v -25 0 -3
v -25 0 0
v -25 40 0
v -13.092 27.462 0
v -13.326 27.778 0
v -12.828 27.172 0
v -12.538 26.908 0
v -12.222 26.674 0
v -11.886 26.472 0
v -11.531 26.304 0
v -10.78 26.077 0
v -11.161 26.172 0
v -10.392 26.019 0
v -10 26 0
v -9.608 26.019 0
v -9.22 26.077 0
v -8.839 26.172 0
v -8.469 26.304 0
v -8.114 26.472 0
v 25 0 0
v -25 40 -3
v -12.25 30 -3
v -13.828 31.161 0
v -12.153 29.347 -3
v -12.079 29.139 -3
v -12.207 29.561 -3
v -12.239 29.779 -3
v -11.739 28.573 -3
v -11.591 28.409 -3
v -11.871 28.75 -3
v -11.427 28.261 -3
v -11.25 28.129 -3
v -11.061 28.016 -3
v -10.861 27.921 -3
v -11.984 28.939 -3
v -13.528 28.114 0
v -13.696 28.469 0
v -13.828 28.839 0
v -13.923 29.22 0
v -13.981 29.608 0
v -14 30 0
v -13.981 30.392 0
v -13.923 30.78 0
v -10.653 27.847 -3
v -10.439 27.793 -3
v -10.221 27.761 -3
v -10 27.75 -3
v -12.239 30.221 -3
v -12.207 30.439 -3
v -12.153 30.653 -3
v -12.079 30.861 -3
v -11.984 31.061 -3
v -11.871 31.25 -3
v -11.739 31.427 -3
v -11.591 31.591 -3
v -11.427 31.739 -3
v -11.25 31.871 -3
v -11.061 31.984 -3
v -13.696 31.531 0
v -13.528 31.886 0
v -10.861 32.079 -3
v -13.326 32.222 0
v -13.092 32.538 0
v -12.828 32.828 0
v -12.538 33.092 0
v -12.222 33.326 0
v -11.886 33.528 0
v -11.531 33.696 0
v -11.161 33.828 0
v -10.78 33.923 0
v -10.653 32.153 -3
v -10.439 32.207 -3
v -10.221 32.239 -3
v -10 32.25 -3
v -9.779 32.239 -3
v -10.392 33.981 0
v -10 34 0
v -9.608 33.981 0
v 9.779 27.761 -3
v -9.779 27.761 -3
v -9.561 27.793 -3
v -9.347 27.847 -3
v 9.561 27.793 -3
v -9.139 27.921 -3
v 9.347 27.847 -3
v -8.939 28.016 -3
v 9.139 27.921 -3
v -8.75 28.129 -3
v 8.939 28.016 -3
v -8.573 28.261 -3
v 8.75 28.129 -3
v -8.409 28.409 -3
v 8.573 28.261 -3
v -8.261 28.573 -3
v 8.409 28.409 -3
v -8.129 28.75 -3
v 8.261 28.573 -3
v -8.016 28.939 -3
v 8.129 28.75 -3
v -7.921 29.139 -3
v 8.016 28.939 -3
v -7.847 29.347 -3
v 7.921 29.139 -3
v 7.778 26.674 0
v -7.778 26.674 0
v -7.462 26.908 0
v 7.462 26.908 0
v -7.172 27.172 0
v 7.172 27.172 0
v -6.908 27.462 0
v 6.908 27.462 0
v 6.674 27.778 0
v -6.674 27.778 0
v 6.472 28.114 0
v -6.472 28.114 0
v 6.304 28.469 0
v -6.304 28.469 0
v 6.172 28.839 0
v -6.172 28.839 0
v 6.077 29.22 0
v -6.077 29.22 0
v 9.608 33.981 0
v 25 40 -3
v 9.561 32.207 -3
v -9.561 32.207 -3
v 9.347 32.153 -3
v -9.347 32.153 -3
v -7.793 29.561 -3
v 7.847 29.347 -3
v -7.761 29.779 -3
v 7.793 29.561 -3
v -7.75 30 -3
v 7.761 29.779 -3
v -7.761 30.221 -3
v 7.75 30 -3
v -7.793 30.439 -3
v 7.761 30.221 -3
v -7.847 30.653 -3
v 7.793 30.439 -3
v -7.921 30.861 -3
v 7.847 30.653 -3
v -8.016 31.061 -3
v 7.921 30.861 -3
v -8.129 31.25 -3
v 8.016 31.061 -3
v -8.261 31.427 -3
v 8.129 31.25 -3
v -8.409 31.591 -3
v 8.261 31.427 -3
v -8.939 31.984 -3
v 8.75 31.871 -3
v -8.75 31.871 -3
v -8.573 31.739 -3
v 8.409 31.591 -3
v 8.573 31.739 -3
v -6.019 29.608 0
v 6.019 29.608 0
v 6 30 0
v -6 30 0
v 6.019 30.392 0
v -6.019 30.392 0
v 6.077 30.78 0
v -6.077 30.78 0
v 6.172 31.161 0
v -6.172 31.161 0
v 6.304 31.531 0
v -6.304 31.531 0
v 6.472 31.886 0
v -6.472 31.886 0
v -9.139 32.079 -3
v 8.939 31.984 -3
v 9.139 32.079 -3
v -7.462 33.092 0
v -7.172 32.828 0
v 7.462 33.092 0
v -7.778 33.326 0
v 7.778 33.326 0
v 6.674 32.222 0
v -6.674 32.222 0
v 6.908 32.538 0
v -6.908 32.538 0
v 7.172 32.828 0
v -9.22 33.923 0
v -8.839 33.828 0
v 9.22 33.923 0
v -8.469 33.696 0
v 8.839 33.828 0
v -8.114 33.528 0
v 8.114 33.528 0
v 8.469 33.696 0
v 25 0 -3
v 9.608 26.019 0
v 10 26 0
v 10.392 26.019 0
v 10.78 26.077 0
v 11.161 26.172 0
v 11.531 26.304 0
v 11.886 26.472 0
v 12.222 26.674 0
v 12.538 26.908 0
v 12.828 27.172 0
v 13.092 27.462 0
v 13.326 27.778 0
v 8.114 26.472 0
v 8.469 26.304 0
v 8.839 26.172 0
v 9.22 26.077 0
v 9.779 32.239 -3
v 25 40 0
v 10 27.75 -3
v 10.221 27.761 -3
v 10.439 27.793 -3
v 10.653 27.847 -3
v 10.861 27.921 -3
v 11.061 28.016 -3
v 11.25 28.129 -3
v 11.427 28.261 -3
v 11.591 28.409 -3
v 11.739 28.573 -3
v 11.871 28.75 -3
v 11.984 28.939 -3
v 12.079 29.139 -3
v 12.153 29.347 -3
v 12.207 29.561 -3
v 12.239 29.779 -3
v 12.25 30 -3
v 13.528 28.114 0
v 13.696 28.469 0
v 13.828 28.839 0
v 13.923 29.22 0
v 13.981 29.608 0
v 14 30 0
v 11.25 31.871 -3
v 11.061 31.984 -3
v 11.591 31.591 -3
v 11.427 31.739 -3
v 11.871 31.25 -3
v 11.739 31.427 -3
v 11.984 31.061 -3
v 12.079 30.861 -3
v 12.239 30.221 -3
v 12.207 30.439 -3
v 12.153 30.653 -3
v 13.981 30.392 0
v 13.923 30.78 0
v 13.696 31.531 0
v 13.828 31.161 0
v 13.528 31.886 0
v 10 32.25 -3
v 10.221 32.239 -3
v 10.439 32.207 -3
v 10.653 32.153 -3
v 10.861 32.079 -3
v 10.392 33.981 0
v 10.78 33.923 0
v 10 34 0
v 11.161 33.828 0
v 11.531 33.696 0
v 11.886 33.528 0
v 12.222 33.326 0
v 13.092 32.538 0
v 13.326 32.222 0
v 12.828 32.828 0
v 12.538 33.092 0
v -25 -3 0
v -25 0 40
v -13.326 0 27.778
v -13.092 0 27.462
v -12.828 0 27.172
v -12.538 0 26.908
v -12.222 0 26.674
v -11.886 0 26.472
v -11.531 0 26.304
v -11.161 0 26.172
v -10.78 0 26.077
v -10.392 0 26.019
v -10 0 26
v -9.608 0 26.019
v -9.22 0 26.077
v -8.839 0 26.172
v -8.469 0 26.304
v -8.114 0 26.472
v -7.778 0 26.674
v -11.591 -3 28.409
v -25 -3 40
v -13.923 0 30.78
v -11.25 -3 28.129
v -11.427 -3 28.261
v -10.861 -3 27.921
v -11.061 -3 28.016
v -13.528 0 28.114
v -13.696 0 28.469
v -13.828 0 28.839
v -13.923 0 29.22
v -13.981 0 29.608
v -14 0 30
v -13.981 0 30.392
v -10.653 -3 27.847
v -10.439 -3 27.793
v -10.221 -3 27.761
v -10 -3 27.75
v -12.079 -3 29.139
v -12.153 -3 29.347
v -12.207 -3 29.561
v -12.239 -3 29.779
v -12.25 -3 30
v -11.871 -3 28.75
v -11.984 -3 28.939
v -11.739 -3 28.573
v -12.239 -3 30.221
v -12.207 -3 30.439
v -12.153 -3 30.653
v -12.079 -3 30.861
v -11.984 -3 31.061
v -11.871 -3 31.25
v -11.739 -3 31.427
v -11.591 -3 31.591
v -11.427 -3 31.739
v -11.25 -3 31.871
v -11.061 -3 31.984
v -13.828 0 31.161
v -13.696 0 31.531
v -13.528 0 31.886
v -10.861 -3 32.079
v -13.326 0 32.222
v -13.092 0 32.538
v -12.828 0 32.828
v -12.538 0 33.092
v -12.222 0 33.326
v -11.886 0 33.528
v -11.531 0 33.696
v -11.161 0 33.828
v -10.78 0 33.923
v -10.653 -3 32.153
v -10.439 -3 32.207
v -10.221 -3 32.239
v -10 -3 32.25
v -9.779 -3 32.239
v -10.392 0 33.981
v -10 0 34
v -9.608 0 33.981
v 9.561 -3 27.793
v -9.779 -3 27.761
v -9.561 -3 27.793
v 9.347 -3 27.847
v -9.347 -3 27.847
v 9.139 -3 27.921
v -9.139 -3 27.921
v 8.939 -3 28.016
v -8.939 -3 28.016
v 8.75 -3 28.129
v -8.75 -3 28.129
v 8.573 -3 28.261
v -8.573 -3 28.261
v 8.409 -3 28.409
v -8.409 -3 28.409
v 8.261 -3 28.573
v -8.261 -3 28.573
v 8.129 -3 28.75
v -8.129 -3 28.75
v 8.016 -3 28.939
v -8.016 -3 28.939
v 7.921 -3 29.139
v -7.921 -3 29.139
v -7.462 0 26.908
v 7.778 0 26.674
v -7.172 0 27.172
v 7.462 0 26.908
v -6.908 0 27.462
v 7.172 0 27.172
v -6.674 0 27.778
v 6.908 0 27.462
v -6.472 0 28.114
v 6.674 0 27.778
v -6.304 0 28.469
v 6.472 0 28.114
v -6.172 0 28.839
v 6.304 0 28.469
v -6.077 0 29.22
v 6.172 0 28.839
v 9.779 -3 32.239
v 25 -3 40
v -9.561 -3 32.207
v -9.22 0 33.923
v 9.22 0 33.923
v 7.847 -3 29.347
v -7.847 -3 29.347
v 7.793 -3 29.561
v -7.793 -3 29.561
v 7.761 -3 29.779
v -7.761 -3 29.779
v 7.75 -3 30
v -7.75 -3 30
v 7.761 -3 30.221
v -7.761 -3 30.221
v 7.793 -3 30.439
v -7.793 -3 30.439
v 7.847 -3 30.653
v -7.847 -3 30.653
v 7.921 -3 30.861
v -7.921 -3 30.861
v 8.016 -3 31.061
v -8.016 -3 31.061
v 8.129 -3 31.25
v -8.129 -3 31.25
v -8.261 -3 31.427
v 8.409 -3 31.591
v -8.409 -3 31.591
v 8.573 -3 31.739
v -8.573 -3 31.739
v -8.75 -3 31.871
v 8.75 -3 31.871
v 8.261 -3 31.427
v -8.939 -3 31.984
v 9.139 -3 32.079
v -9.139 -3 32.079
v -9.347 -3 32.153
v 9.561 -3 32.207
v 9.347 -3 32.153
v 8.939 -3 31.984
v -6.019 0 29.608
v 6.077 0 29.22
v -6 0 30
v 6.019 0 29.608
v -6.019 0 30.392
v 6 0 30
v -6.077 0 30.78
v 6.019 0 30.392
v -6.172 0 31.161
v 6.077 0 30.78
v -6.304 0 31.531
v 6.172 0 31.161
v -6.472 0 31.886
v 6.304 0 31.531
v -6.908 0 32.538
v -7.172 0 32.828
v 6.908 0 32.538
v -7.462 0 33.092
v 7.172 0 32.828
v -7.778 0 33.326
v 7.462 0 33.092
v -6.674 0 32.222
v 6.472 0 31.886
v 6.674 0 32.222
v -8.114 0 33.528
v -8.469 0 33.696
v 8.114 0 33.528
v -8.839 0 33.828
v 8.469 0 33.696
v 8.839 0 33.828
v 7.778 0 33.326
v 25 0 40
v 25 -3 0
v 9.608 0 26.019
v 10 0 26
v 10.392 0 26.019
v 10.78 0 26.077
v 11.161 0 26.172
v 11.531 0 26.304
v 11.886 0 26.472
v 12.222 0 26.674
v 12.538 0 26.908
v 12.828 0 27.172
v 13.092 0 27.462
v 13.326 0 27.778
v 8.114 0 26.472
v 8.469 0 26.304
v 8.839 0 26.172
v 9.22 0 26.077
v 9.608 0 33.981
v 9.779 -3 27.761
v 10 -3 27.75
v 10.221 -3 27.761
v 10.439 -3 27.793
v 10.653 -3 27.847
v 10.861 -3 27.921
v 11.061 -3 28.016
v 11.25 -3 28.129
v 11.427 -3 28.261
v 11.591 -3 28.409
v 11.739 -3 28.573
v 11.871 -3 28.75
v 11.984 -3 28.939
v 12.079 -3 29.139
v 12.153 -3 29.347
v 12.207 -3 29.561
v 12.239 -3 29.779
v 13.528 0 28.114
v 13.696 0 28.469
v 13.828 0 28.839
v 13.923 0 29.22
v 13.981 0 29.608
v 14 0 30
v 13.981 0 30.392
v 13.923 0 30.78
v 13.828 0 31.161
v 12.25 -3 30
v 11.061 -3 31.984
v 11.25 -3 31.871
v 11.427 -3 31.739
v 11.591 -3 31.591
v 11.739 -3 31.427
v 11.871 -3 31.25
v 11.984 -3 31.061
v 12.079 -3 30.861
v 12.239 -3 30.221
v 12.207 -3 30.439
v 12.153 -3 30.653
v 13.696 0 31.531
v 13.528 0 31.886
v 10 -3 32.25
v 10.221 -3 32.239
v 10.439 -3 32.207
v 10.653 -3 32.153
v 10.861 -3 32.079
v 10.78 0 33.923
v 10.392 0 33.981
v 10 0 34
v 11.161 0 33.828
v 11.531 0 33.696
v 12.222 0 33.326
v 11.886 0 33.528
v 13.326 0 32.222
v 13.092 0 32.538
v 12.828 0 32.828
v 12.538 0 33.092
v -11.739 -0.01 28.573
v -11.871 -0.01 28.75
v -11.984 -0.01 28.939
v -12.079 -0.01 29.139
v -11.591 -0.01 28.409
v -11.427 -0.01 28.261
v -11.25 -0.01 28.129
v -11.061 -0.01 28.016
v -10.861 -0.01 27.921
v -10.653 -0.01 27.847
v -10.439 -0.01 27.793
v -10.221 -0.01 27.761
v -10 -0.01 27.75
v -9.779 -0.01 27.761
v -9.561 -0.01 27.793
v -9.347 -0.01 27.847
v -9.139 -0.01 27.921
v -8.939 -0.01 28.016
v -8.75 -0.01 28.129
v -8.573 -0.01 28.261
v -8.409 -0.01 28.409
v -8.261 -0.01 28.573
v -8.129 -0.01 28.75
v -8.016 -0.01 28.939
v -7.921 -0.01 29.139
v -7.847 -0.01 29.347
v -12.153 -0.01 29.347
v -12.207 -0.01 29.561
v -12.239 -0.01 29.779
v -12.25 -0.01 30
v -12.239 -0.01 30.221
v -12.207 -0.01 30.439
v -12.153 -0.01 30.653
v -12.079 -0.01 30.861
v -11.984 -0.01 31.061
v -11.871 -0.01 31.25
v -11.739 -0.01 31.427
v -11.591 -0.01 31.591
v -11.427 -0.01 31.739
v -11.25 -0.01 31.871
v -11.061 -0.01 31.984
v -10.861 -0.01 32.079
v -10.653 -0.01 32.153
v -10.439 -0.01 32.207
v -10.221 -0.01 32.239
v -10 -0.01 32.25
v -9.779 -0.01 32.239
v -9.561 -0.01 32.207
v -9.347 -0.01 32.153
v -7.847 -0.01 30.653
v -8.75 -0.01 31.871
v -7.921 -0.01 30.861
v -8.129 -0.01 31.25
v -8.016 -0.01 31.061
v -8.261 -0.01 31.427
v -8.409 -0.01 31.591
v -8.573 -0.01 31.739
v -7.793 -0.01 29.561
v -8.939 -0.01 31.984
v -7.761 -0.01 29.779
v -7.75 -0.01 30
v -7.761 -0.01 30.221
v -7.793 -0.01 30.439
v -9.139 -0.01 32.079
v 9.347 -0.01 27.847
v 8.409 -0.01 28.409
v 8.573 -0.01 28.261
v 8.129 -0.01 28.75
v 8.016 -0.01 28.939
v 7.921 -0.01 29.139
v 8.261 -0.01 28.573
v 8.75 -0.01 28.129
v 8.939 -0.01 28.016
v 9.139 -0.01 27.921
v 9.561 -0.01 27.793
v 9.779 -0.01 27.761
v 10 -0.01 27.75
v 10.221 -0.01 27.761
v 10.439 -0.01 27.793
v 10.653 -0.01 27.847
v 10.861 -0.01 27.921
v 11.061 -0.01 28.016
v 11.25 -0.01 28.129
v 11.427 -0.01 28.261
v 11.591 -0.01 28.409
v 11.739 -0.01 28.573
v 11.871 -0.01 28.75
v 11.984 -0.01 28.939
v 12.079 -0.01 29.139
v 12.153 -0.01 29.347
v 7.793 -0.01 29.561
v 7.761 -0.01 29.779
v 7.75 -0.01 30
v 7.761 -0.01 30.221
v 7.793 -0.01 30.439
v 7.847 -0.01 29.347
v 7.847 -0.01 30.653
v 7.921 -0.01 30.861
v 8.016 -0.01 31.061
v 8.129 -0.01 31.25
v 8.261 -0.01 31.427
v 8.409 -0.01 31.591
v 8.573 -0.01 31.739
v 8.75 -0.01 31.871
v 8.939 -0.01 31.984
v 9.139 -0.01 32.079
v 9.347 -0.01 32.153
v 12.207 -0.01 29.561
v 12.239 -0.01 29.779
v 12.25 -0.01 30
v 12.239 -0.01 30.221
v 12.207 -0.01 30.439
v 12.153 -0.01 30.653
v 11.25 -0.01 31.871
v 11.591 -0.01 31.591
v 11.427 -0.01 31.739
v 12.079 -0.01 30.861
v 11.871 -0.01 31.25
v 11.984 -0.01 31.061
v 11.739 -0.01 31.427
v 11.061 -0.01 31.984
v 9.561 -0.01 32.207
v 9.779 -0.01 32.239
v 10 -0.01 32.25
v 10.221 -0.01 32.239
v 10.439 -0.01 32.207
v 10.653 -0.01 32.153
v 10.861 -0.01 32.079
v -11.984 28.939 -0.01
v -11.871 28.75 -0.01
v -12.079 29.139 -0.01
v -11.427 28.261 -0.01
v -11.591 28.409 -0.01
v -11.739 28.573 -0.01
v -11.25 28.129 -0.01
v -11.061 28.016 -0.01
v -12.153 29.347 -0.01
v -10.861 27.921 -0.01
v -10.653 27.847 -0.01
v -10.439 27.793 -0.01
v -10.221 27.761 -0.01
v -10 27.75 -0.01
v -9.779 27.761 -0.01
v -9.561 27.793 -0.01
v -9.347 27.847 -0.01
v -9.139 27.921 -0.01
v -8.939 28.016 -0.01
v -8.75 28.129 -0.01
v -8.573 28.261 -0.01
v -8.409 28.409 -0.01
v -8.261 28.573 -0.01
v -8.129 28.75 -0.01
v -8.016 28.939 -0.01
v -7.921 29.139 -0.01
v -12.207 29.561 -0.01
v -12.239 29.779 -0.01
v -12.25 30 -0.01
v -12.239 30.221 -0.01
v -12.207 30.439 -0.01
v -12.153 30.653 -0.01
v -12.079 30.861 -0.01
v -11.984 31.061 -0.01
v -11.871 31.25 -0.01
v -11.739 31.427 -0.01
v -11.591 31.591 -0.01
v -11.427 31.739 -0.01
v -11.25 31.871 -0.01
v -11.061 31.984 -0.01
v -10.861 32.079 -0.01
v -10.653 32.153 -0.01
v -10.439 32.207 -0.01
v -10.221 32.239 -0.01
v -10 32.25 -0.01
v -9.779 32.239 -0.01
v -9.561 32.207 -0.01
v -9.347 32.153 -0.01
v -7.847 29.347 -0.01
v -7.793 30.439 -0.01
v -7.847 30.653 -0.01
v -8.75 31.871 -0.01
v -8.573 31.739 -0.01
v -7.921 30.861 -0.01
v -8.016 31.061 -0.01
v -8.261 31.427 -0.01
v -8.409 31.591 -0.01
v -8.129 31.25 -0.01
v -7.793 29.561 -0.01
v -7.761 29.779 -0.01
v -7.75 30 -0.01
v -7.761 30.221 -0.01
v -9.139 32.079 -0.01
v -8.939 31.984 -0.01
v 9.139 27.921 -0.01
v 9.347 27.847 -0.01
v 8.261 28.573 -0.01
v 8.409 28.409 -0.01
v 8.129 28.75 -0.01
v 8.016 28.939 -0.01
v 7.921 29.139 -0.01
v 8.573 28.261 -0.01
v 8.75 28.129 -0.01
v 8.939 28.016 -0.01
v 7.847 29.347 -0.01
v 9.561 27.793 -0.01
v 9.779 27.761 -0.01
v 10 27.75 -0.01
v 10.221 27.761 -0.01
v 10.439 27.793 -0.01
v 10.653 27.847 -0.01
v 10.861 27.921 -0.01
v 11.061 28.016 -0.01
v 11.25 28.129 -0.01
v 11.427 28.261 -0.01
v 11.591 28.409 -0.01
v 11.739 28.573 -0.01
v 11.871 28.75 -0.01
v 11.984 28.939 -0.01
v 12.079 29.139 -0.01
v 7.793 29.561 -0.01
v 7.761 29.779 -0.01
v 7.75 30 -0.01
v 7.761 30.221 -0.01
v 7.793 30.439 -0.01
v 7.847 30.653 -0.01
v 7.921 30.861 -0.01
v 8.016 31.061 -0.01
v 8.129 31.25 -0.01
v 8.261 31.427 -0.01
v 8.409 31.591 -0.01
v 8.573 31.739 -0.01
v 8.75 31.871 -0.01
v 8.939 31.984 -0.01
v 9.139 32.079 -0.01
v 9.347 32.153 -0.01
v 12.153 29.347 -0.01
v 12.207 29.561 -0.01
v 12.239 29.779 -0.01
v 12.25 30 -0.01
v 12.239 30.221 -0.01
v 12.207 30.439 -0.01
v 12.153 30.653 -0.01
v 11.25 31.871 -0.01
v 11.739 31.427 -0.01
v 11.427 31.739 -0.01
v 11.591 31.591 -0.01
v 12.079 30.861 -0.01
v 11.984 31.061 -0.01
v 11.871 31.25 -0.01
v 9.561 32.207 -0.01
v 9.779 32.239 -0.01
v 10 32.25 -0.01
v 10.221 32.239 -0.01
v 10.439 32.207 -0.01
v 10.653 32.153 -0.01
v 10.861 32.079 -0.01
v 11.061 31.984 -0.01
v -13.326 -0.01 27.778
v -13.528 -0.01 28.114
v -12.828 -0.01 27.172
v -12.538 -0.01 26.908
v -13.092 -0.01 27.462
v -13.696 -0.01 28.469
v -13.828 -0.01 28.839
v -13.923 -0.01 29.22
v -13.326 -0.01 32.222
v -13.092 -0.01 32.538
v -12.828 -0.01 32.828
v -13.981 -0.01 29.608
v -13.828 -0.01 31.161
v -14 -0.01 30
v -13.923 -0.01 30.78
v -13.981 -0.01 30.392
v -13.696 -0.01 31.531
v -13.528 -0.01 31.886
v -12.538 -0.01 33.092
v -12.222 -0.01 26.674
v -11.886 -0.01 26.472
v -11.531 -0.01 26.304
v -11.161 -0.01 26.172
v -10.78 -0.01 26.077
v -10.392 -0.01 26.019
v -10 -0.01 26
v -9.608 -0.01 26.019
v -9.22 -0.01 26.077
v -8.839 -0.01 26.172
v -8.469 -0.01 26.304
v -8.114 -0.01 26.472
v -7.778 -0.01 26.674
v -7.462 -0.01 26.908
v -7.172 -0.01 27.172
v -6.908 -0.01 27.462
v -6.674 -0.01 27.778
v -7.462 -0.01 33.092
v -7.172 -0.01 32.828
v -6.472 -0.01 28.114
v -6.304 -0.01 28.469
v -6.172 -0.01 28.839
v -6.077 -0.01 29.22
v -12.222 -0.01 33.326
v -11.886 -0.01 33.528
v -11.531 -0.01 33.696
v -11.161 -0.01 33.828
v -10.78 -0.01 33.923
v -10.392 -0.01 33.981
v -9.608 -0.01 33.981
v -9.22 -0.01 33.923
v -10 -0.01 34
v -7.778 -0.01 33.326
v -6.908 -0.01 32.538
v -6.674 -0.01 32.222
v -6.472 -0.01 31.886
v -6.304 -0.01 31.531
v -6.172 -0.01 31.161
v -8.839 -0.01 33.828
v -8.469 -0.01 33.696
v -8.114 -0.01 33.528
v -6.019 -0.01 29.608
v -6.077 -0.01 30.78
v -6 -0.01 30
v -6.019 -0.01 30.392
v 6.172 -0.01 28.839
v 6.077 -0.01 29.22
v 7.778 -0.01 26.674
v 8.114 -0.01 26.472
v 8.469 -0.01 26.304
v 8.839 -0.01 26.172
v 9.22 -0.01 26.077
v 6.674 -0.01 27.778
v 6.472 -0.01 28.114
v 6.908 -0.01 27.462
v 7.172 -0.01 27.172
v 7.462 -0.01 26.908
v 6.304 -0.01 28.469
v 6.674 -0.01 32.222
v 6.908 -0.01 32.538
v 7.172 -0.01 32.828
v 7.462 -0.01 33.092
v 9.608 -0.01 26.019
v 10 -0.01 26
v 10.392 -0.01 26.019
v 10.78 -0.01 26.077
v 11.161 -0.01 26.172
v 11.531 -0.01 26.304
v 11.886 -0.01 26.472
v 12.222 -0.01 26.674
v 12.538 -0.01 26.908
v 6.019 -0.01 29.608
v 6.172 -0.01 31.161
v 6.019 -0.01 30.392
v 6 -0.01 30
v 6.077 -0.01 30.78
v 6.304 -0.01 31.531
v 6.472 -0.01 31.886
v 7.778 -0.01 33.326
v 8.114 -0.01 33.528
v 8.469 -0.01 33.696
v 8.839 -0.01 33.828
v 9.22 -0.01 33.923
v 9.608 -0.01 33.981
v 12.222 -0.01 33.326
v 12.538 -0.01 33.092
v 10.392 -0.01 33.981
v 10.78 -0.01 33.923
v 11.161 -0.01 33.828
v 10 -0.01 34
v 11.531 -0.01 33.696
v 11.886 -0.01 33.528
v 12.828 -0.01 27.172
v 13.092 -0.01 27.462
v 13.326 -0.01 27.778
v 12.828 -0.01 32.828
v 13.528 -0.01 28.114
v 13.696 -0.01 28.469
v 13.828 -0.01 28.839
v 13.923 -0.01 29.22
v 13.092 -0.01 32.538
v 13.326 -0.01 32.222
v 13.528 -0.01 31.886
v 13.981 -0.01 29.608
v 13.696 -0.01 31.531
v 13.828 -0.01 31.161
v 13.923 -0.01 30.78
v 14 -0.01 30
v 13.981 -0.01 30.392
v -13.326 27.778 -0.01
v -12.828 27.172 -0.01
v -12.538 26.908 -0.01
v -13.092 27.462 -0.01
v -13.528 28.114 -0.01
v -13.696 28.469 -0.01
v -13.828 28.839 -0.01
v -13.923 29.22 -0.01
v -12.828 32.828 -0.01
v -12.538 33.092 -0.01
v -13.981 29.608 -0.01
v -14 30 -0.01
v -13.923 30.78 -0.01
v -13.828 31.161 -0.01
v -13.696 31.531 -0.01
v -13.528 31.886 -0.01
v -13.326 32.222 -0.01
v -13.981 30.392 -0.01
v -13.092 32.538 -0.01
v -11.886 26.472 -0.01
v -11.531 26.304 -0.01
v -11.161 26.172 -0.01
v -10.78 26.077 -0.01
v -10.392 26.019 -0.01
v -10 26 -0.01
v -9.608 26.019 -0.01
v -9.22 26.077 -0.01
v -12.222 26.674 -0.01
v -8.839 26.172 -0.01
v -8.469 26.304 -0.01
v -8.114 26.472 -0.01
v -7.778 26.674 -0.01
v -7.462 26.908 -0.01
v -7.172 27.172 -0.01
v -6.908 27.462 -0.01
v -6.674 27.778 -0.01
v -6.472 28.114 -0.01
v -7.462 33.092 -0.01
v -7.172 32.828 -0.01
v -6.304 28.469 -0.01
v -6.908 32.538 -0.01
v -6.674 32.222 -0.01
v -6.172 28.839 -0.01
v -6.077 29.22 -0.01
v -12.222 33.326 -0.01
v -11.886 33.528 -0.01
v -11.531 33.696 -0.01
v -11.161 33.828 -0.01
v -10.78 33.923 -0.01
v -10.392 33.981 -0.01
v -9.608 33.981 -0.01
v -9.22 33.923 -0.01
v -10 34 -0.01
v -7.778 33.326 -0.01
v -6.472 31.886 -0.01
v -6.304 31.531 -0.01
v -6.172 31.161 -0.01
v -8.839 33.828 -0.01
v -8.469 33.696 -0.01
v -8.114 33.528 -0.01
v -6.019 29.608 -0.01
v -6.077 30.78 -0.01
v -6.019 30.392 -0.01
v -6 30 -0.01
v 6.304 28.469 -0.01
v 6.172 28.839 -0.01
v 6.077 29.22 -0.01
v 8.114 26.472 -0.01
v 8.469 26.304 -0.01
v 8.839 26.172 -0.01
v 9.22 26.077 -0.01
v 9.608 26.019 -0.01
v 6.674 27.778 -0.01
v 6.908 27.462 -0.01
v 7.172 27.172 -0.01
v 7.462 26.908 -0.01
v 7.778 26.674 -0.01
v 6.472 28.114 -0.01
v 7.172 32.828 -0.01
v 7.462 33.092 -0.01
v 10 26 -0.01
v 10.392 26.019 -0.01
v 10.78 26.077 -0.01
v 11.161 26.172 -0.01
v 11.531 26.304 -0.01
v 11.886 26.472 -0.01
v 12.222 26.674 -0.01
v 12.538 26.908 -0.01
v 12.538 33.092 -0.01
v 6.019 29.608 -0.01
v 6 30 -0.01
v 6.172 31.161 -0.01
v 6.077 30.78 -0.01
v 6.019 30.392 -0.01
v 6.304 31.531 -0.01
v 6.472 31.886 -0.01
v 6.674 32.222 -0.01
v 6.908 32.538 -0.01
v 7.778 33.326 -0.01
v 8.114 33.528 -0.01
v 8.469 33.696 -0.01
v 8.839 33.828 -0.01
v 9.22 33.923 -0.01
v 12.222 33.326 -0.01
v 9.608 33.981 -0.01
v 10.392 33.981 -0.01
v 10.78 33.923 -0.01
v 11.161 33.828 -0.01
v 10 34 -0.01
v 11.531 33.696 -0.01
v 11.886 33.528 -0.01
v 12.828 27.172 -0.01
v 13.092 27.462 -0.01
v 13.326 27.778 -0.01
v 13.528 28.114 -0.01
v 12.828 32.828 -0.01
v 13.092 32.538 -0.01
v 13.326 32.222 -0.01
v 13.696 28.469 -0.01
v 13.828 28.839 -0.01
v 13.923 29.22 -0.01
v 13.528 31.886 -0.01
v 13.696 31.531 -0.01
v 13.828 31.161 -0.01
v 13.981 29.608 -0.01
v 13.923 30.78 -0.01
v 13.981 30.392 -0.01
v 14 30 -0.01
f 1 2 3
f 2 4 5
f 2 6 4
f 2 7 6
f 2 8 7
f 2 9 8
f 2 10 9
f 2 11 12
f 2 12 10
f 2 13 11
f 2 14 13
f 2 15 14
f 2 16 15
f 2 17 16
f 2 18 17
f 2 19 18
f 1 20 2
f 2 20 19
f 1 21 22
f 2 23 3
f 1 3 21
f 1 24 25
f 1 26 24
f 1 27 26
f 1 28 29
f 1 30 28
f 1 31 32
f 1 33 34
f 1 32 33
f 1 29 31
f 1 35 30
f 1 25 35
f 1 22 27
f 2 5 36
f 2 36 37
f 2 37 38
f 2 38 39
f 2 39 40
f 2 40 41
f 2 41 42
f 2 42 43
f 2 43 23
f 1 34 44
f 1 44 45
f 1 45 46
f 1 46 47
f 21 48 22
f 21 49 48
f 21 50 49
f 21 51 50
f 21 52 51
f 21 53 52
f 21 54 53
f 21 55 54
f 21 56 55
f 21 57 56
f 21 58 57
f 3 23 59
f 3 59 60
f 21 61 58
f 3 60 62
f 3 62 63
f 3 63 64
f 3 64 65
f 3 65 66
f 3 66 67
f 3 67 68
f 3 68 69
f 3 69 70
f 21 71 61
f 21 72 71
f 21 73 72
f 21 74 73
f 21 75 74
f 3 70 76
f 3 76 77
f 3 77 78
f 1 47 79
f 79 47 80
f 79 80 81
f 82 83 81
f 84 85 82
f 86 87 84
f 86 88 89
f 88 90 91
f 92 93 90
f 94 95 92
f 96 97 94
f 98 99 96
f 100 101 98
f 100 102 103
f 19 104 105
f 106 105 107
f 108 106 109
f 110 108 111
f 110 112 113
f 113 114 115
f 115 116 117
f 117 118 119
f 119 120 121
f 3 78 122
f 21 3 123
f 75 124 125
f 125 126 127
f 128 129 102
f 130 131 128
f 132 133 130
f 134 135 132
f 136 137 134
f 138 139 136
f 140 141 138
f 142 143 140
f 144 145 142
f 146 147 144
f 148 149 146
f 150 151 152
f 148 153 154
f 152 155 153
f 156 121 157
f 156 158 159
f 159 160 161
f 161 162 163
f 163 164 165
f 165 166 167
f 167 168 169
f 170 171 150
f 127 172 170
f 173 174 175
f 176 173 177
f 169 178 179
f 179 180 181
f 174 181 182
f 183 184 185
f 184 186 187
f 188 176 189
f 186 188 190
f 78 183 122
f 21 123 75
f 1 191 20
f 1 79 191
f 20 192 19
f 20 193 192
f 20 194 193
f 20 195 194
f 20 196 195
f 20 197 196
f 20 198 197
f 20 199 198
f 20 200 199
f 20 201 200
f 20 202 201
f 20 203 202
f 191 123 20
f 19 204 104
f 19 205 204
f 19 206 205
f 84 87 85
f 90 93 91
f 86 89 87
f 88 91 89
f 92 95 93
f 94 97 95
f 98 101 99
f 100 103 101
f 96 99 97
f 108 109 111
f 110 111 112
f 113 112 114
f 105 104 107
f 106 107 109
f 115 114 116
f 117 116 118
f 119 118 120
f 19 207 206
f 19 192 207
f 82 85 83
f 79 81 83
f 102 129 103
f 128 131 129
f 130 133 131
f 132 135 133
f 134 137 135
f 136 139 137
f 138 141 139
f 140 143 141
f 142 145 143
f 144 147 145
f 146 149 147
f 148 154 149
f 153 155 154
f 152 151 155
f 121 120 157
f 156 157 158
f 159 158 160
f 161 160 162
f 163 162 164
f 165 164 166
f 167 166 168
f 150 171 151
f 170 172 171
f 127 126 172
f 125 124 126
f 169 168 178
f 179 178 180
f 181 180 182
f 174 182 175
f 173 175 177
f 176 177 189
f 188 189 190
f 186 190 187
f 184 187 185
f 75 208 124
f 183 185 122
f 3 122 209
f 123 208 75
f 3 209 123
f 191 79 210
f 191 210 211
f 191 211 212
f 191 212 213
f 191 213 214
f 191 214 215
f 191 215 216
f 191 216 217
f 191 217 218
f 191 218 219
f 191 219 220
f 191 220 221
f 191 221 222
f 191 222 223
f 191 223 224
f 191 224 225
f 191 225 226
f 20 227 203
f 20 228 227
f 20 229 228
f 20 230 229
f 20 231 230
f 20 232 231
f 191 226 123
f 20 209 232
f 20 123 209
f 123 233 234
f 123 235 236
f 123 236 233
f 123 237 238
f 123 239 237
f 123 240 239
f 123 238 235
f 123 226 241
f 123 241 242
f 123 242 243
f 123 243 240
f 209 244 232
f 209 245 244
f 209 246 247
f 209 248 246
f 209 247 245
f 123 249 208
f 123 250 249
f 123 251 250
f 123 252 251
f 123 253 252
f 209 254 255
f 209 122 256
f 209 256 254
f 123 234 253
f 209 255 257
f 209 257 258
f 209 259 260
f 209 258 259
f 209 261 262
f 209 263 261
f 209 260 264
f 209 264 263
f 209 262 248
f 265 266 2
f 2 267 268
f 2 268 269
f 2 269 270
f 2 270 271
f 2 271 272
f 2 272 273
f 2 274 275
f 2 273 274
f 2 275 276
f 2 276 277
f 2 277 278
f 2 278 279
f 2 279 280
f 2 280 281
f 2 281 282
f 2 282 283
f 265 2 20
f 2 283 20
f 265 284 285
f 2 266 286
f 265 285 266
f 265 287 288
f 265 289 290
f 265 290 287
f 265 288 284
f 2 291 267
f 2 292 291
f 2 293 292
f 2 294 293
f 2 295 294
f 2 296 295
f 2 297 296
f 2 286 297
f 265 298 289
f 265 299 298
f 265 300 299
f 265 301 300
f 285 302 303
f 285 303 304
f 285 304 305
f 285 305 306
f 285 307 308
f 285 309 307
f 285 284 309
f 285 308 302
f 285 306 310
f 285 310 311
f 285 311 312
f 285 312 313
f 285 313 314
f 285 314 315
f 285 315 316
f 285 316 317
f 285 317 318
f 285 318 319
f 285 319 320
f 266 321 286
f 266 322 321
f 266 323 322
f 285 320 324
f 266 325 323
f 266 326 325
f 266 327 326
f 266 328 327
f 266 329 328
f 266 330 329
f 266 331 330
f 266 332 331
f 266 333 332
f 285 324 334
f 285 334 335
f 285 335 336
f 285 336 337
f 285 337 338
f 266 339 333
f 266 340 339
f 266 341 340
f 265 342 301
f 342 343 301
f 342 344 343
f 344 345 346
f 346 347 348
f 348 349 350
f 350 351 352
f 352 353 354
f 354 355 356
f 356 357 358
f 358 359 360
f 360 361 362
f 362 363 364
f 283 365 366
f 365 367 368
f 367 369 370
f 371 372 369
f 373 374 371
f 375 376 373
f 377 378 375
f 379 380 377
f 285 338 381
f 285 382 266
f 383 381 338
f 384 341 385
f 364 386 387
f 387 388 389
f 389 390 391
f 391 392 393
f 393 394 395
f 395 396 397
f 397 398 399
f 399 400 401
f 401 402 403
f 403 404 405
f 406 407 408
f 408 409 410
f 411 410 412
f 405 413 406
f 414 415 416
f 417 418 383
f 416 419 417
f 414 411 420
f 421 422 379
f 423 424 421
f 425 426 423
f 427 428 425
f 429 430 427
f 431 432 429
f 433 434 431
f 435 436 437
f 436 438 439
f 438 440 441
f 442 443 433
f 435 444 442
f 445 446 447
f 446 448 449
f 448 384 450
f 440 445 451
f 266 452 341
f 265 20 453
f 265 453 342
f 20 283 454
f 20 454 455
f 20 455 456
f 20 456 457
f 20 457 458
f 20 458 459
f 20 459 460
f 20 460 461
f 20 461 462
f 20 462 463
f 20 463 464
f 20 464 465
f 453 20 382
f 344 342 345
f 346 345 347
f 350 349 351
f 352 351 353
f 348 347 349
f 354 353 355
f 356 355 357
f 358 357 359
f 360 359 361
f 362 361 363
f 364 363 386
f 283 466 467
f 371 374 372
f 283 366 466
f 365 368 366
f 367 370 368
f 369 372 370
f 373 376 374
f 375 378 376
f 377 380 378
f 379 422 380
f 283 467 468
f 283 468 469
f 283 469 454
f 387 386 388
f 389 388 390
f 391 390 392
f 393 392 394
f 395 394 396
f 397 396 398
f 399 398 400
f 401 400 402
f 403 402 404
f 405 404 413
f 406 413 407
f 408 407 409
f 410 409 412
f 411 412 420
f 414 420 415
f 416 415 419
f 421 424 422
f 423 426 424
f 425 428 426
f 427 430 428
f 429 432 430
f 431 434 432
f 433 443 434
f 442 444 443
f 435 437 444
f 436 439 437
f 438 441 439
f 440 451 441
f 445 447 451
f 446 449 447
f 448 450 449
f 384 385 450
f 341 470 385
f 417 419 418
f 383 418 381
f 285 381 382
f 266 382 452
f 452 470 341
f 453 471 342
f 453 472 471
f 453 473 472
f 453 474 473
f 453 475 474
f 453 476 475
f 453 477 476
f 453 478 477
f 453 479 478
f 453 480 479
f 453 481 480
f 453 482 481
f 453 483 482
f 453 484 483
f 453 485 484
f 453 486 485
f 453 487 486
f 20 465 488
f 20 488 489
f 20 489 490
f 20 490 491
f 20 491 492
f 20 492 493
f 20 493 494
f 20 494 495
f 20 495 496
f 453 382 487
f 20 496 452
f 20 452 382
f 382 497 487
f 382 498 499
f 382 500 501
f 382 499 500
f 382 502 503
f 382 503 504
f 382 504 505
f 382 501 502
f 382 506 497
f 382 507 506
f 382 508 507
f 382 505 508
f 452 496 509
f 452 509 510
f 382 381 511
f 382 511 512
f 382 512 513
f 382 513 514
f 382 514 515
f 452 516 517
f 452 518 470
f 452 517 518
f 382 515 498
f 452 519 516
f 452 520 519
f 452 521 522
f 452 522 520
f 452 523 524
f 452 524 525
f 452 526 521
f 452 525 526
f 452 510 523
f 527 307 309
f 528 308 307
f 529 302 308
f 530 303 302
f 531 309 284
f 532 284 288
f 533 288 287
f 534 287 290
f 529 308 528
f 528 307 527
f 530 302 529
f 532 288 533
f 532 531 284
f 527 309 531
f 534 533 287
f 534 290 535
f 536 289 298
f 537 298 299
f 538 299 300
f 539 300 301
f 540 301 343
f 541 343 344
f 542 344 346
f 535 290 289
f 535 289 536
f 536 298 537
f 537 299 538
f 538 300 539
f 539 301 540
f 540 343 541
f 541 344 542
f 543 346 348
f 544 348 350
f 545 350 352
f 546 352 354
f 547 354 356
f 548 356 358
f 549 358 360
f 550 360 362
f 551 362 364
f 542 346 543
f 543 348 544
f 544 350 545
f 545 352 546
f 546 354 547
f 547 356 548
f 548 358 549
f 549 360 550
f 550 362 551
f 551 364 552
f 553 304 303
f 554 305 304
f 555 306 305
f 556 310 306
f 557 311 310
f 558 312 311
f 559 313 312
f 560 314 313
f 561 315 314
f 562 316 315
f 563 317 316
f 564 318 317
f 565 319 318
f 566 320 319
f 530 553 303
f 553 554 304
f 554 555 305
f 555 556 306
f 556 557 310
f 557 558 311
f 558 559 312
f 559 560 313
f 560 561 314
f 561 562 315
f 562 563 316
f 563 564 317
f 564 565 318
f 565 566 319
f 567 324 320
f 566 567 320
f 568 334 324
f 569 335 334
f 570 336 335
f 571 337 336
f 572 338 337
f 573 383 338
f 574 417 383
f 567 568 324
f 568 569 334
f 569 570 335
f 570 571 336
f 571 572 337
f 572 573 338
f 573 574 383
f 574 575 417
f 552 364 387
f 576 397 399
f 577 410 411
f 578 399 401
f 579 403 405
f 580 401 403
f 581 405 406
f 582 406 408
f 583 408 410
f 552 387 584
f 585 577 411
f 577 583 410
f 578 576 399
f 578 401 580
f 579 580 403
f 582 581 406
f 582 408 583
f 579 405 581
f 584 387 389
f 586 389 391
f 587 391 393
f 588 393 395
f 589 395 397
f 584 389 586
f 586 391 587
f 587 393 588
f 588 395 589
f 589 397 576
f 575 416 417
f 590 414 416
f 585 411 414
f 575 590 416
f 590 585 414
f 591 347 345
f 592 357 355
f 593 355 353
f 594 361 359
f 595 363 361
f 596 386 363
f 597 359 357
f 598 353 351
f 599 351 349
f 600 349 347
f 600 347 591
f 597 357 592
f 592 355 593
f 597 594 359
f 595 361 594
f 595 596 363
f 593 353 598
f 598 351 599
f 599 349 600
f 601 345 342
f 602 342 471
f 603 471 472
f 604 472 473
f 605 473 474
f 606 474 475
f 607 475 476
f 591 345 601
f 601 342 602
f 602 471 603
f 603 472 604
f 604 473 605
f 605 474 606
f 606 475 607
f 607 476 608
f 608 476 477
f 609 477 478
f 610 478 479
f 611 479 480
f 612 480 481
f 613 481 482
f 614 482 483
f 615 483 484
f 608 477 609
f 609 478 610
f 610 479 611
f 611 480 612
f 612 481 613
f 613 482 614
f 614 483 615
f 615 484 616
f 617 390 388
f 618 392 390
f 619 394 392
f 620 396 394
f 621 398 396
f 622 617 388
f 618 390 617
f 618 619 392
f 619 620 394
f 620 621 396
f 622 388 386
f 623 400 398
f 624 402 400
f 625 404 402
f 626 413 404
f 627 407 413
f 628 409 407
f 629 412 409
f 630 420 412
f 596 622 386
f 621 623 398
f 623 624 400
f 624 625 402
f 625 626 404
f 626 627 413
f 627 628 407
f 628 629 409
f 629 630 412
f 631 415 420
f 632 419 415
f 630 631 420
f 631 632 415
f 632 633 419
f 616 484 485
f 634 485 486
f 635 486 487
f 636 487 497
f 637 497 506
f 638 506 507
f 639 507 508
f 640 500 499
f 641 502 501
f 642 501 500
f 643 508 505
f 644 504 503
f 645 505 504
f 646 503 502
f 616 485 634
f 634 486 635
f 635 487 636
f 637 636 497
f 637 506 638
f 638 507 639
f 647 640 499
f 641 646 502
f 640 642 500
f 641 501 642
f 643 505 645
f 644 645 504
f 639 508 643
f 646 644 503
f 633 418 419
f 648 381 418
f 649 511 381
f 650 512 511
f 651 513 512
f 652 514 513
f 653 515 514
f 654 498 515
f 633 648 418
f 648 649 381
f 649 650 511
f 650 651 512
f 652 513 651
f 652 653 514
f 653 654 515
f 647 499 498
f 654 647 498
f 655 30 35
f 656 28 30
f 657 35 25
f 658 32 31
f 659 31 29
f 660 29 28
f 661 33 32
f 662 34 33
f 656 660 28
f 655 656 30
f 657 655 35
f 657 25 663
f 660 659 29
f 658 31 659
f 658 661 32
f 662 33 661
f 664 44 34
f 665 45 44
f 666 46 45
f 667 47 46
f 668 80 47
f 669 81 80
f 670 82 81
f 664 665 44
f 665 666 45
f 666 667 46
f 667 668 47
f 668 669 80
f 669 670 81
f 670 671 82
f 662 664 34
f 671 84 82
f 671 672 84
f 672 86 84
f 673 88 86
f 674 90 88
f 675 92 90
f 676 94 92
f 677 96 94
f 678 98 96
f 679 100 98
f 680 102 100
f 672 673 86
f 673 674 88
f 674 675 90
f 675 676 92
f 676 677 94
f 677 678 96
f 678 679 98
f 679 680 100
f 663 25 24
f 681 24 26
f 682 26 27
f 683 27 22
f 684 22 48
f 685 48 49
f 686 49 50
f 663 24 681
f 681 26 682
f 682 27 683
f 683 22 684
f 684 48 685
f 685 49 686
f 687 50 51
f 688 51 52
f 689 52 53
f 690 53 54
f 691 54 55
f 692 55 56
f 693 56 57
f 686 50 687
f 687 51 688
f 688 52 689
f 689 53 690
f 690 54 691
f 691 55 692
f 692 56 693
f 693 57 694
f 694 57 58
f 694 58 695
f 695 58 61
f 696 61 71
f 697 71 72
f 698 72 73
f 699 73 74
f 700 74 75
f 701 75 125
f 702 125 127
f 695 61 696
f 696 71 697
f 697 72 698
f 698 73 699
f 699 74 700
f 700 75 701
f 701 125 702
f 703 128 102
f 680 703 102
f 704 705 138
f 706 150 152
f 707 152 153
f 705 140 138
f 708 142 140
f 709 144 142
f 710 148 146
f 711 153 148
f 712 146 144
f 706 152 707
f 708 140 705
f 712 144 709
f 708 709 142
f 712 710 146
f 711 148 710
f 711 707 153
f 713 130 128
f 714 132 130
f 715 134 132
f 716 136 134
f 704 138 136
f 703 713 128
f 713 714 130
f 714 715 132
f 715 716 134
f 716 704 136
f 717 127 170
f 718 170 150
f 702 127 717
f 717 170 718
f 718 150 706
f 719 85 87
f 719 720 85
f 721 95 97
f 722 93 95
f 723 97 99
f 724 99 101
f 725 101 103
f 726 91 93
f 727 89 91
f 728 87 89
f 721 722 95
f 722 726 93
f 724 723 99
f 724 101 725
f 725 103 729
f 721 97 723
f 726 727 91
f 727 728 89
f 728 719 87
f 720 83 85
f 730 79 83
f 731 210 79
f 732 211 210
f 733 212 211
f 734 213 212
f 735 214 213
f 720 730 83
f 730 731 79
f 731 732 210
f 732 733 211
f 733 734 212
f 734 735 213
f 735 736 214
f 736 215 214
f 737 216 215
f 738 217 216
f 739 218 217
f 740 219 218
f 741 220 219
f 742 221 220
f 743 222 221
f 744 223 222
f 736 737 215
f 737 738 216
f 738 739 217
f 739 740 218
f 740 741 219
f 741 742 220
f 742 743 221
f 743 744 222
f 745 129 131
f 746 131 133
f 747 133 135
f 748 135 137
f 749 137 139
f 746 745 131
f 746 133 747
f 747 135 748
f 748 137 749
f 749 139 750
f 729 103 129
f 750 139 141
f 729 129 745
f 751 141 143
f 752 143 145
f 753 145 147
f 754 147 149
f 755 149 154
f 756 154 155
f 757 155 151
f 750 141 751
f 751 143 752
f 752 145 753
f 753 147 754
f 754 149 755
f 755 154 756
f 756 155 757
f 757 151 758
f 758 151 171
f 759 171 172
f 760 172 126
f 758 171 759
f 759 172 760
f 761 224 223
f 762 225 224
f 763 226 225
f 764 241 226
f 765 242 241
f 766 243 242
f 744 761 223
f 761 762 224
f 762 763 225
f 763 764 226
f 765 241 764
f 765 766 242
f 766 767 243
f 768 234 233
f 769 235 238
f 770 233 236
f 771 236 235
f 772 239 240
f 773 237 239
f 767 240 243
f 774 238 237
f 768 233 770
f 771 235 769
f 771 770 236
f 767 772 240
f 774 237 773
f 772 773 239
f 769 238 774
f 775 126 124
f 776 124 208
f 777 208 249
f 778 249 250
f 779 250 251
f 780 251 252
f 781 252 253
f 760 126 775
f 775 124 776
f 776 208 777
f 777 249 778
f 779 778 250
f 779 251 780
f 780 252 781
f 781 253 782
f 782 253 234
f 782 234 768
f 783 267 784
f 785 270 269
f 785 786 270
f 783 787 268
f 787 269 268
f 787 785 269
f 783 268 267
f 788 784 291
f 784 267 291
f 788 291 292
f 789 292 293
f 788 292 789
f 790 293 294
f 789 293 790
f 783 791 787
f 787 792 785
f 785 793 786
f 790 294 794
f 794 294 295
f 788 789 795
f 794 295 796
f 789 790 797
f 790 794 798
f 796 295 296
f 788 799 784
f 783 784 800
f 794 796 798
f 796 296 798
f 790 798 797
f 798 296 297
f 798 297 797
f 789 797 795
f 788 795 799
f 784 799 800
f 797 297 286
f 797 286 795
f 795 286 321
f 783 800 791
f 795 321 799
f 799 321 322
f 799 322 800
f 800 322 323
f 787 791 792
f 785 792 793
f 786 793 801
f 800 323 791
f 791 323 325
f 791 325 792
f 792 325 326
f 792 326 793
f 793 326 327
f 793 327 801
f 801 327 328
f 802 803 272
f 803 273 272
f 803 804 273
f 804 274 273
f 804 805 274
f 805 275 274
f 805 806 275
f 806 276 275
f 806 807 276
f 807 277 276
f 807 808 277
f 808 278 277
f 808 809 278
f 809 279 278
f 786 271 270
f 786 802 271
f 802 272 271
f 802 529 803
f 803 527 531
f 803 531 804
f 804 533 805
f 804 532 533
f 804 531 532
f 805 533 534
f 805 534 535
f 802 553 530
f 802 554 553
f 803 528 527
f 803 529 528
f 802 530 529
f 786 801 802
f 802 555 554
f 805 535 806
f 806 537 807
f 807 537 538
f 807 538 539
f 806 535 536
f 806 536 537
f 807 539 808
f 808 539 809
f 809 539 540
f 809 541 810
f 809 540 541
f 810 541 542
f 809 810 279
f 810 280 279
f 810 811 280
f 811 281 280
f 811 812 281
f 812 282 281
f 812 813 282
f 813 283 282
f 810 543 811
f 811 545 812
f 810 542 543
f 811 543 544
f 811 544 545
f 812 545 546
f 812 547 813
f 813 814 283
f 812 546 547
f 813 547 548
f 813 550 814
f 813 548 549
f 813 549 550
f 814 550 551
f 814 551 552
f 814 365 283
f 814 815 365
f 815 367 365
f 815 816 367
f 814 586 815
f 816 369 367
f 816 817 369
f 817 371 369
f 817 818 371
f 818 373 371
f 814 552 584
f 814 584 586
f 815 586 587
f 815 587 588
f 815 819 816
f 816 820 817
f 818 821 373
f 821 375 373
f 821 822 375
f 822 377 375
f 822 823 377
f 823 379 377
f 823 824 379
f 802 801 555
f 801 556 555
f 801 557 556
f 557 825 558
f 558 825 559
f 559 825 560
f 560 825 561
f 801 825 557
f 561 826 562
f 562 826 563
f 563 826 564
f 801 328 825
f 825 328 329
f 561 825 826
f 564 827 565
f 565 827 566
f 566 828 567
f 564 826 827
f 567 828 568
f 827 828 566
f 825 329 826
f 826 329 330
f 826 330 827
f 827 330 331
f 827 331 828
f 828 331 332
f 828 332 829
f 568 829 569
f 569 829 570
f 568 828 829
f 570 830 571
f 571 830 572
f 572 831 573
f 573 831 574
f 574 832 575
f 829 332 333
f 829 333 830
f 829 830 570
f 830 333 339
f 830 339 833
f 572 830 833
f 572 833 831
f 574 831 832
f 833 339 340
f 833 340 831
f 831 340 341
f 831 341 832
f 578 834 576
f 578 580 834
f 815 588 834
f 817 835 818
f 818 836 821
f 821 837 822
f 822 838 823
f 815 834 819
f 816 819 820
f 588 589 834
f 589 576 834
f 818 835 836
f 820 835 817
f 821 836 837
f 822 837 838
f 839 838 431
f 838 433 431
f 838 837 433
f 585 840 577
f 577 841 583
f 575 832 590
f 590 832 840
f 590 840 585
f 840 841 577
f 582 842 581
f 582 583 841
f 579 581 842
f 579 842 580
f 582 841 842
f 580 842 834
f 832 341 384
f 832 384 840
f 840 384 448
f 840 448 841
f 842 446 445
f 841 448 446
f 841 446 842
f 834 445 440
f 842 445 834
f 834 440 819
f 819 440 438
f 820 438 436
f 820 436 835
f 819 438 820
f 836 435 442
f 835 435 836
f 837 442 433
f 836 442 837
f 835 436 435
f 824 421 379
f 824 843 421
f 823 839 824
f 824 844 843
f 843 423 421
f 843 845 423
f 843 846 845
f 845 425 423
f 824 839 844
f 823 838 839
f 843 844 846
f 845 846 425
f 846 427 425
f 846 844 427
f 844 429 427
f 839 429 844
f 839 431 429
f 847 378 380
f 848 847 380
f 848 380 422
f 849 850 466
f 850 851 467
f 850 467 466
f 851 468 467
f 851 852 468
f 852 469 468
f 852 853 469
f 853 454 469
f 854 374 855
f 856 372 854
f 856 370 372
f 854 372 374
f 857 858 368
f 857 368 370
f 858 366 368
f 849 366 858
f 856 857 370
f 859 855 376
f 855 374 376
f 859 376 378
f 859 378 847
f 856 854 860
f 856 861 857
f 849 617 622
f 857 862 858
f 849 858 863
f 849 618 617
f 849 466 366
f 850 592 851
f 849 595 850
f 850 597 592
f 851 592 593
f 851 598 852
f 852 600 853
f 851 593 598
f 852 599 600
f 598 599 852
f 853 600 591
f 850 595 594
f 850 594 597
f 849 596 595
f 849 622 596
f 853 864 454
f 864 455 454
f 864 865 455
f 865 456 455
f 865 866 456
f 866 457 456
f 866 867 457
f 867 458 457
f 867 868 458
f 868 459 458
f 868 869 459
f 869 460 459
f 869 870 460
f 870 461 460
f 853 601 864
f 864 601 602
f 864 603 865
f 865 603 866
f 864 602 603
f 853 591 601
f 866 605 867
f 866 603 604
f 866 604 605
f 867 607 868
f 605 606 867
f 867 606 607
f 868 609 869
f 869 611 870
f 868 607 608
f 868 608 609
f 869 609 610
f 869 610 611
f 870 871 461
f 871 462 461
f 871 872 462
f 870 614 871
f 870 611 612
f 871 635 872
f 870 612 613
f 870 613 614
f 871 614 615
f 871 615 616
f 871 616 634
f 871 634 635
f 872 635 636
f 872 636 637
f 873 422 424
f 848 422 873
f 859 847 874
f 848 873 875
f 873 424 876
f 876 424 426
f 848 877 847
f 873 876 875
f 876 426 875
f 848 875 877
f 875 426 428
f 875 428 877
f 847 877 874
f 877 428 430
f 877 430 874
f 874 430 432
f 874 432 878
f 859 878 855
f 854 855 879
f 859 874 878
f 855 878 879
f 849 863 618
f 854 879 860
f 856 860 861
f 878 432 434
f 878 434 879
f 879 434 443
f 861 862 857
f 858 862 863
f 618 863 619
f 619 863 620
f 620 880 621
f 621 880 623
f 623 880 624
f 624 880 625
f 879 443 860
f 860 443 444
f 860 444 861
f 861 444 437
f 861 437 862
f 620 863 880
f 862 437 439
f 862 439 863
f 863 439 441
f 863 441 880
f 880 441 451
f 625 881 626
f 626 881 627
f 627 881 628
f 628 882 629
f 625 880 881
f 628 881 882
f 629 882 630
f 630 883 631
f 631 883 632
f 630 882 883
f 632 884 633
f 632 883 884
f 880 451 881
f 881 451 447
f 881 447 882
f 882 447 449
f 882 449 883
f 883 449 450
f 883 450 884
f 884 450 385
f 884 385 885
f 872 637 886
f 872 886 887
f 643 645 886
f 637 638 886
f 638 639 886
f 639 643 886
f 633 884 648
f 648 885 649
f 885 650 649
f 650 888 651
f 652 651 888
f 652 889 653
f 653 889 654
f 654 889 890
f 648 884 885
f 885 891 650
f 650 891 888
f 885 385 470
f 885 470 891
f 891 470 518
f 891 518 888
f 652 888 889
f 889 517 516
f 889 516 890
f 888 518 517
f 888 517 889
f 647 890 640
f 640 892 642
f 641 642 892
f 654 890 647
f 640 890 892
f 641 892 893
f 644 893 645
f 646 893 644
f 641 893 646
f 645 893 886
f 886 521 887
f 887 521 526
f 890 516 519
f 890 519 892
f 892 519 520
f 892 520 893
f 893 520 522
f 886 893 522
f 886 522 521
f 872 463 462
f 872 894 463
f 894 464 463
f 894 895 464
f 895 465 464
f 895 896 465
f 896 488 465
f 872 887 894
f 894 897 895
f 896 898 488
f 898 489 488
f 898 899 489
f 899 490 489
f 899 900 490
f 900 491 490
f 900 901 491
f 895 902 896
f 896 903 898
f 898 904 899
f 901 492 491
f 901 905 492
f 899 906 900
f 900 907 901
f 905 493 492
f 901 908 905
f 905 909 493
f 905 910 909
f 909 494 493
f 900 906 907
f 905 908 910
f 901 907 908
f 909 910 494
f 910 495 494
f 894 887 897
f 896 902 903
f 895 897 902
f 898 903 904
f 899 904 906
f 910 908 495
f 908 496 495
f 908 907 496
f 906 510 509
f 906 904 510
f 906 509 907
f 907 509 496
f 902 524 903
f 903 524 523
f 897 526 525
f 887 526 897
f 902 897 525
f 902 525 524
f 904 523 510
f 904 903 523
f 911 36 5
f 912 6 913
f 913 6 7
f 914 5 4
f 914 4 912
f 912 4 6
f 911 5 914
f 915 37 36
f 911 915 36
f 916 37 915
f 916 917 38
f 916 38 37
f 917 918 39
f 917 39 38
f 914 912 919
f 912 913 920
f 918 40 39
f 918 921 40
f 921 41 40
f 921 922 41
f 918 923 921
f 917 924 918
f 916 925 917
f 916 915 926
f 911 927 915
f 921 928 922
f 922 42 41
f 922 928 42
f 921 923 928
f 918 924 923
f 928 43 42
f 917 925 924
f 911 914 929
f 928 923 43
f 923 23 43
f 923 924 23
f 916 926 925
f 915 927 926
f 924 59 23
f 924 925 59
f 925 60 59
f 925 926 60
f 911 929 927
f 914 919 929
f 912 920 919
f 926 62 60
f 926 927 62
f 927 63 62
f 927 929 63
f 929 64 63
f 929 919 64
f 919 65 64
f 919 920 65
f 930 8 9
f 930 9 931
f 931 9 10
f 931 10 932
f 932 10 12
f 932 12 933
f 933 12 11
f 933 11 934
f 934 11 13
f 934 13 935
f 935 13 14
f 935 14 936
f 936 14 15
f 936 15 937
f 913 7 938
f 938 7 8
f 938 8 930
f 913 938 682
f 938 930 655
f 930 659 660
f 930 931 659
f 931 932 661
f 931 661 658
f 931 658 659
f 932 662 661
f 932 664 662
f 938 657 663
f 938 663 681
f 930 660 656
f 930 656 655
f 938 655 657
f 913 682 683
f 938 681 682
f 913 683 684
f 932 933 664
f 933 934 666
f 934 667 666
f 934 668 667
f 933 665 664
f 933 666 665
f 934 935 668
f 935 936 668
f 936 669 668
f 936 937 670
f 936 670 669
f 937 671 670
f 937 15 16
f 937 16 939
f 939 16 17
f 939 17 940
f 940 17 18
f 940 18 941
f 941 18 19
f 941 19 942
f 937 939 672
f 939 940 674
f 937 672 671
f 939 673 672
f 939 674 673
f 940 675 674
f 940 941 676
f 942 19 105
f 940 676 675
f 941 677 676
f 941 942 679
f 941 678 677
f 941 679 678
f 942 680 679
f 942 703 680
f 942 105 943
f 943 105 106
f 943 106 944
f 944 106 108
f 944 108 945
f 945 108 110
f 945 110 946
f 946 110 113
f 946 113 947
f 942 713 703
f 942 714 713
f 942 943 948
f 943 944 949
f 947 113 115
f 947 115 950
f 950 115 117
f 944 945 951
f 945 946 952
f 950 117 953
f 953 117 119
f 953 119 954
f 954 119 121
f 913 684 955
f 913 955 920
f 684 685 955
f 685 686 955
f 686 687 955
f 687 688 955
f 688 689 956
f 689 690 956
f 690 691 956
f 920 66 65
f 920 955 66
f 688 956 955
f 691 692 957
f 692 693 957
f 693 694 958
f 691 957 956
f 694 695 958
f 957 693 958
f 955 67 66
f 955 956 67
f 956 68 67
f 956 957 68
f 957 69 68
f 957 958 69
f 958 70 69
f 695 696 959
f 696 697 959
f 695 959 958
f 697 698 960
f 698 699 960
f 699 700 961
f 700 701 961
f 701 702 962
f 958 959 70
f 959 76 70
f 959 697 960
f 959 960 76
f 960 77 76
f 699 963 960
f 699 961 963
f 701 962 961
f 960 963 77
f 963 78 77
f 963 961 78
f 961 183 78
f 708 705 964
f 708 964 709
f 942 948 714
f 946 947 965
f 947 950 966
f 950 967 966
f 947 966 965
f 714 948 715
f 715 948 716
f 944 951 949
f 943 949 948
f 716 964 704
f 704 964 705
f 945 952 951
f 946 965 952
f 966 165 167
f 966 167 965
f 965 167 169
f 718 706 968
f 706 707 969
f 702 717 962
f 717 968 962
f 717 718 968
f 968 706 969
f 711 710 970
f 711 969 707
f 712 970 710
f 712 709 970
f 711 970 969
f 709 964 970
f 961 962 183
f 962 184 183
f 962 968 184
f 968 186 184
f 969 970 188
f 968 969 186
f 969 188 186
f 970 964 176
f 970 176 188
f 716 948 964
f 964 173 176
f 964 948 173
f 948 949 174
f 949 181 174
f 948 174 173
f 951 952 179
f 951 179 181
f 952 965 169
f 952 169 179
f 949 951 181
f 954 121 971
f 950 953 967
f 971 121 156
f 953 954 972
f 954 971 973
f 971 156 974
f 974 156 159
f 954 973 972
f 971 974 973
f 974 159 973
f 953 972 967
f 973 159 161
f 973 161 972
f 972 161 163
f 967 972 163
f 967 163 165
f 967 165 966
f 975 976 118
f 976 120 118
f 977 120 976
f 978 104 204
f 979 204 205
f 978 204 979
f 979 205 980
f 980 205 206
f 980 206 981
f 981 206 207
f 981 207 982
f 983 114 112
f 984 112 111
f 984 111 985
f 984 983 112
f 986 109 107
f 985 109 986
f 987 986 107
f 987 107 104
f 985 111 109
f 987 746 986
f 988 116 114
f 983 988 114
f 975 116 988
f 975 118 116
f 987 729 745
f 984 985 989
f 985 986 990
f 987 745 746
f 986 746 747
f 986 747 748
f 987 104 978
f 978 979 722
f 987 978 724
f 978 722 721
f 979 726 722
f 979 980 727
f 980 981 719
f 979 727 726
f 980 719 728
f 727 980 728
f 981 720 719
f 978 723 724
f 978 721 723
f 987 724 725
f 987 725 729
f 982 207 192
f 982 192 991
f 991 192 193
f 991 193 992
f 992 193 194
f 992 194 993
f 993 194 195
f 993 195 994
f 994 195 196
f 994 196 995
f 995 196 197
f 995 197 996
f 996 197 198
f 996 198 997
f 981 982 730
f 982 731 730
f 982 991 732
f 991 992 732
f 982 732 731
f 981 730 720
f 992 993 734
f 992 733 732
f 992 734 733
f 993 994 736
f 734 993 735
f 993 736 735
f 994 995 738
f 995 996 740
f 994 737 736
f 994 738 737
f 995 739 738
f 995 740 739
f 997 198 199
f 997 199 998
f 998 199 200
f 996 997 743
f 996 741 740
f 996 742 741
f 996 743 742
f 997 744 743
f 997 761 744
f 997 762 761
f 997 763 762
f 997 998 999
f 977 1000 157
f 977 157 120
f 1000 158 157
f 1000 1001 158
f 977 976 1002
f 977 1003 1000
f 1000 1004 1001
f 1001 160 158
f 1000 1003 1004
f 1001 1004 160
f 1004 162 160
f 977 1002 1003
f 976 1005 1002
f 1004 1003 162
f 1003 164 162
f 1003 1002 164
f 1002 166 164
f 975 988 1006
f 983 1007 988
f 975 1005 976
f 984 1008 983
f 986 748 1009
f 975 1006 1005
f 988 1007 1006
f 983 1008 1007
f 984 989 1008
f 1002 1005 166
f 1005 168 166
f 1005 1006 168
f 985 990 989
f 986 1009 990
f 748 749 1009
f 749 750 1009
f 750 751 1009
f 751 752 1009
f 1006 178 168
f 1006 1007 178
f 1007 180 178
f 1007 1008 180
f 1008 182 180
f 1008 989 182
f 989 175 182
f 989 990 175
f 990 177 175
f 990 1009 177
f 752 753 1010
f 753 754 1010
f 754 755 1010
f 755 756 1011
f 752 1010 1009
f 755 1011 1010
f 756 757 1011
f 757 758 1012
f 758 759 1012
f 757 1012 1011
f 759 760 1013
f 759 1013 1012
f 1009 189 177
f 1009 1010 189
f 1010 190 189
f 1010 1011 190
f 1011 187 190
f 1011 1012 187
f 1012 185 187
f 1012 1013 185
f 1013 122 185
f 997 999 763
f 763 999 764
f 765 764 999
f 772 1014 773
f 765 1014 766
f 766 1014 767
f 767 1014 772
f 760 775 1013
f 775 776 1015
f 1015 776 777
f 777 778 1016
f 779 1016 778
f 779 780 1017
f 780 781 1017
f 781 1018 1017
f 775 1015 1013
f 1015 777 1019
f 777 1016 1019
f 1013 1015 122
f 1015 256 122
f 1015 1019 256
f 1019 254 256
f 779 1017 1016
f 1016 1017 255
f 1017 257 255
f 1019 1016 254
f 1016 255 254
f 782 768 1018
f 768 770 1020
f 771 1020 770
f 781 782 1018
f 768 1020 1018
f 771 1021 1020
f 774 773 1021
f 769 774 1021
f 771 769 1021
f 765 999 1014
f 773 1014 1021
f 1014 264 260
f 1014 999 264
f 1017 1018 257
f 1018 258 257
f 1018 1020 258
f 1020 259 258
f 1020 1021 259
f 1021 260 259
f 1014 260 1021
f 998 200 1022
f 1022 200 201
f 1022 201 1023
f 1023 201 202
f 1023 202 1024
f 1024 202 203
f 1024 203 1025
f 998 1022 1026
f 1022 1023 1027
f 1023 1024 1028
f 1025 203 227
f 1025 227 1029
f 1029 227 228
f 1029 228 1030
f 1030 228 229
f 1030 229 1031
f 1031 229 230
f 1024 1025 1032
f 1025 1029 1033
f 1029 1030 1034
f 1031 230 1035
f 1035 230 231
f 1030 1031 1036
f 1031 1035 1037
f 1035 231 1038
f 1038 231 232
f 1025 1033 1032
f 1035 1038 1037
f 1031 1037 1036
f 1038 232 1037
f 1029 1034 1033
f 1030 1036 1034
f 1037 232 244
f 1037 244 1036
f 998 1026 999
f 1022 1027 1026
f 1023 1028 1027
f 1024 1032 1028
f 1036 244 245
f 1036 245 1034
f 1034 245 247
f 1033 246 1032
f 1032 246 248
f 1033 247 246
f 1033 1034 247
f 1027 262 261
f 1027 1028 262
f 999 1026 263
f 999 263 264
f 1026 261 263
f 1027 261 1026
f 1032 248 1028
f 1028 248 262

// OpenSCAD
// L-bracket with countersunk holes
// Internal corner at origin
// Horizontal flange extends in +Y, vertical flange extends in +Z

// ===== Parameters =====
width      = 50;   // 幅 (X)
depth      = 40;   // 水平面の奥行き (Y)
height     = 40;   // 垂直面の高さ (Z)
thickness  = 3;    // 板厚

hole_dia   = 4.5;  // 貫通穴 Φ
cs_dia     = 8;    // 皿座面 Φ
cs_depth   = 2;    // 皿座面 深さ
edge_off   = 10;   // 面の縁からの距離
hole_pitch = 20;   // 左右の穴間隔 (中心からの対称配置)

$fn = 64;

// ===== Countersunk hole (cutter) =====
// 穴の中心軸は +Z 方向、座面(外側)は -Z 側に出るように作る
module countersink_cutter() {
    // 貫通穴 (十分長く貫通させる)
    translate([0, 0, -thickness - 1])
        cylinder(d = hole_dia, h = thickness + 2);
    // 皿座面: 外側(-Z 側 = ボルト頭が当たる側)
    translate([0, 0, -0.01])
        cylinder(d = cs_dia, h = cs_depth);
}

// ===== L-bracket =====
module l_bracket() {
    difference() {
        union() {
            // 水平面 (XY 平面に置く, 板厚は -Z 方向)
            translate([-width/2, 0, -thickness])
                cube([width, depth, thickness]);
            // 垂直面 (XZ 平面に置く, 板厚は -Y 方向)
            translate([-width/2, -thickness, 0])
                cube([width, thickness, height]);
        }

        // --- 水平面の皿穴 (2個) ---
        // 中心線上 = X=0, 縁(Y=depth)から 10mm 内側 → Y = depth - edge_off
        // 外側 = 下面(-Z)
        for (x = [-hole_pitch/2, hole_pitch/2]) {
            translate([x, depth - edge_off, 0])
                countersink_cutter();
        }

        // --- 垂直面の皿穴 (2個) ---
        // 中心線上 = X=0, 縁(Z=height)から 10mm 内側 → Z = height - edge_off
        // 外側 = 背面(-Y) → 軸を Y 方向に向ける
        for (x = [-hole_pitch/2, hole_pitch/2]) {
            translate([x, 0, height - edge_off])
                rotate([-90, 0, 0])
                    countersink_cutter();
        }
    }
}

l_bracket();
